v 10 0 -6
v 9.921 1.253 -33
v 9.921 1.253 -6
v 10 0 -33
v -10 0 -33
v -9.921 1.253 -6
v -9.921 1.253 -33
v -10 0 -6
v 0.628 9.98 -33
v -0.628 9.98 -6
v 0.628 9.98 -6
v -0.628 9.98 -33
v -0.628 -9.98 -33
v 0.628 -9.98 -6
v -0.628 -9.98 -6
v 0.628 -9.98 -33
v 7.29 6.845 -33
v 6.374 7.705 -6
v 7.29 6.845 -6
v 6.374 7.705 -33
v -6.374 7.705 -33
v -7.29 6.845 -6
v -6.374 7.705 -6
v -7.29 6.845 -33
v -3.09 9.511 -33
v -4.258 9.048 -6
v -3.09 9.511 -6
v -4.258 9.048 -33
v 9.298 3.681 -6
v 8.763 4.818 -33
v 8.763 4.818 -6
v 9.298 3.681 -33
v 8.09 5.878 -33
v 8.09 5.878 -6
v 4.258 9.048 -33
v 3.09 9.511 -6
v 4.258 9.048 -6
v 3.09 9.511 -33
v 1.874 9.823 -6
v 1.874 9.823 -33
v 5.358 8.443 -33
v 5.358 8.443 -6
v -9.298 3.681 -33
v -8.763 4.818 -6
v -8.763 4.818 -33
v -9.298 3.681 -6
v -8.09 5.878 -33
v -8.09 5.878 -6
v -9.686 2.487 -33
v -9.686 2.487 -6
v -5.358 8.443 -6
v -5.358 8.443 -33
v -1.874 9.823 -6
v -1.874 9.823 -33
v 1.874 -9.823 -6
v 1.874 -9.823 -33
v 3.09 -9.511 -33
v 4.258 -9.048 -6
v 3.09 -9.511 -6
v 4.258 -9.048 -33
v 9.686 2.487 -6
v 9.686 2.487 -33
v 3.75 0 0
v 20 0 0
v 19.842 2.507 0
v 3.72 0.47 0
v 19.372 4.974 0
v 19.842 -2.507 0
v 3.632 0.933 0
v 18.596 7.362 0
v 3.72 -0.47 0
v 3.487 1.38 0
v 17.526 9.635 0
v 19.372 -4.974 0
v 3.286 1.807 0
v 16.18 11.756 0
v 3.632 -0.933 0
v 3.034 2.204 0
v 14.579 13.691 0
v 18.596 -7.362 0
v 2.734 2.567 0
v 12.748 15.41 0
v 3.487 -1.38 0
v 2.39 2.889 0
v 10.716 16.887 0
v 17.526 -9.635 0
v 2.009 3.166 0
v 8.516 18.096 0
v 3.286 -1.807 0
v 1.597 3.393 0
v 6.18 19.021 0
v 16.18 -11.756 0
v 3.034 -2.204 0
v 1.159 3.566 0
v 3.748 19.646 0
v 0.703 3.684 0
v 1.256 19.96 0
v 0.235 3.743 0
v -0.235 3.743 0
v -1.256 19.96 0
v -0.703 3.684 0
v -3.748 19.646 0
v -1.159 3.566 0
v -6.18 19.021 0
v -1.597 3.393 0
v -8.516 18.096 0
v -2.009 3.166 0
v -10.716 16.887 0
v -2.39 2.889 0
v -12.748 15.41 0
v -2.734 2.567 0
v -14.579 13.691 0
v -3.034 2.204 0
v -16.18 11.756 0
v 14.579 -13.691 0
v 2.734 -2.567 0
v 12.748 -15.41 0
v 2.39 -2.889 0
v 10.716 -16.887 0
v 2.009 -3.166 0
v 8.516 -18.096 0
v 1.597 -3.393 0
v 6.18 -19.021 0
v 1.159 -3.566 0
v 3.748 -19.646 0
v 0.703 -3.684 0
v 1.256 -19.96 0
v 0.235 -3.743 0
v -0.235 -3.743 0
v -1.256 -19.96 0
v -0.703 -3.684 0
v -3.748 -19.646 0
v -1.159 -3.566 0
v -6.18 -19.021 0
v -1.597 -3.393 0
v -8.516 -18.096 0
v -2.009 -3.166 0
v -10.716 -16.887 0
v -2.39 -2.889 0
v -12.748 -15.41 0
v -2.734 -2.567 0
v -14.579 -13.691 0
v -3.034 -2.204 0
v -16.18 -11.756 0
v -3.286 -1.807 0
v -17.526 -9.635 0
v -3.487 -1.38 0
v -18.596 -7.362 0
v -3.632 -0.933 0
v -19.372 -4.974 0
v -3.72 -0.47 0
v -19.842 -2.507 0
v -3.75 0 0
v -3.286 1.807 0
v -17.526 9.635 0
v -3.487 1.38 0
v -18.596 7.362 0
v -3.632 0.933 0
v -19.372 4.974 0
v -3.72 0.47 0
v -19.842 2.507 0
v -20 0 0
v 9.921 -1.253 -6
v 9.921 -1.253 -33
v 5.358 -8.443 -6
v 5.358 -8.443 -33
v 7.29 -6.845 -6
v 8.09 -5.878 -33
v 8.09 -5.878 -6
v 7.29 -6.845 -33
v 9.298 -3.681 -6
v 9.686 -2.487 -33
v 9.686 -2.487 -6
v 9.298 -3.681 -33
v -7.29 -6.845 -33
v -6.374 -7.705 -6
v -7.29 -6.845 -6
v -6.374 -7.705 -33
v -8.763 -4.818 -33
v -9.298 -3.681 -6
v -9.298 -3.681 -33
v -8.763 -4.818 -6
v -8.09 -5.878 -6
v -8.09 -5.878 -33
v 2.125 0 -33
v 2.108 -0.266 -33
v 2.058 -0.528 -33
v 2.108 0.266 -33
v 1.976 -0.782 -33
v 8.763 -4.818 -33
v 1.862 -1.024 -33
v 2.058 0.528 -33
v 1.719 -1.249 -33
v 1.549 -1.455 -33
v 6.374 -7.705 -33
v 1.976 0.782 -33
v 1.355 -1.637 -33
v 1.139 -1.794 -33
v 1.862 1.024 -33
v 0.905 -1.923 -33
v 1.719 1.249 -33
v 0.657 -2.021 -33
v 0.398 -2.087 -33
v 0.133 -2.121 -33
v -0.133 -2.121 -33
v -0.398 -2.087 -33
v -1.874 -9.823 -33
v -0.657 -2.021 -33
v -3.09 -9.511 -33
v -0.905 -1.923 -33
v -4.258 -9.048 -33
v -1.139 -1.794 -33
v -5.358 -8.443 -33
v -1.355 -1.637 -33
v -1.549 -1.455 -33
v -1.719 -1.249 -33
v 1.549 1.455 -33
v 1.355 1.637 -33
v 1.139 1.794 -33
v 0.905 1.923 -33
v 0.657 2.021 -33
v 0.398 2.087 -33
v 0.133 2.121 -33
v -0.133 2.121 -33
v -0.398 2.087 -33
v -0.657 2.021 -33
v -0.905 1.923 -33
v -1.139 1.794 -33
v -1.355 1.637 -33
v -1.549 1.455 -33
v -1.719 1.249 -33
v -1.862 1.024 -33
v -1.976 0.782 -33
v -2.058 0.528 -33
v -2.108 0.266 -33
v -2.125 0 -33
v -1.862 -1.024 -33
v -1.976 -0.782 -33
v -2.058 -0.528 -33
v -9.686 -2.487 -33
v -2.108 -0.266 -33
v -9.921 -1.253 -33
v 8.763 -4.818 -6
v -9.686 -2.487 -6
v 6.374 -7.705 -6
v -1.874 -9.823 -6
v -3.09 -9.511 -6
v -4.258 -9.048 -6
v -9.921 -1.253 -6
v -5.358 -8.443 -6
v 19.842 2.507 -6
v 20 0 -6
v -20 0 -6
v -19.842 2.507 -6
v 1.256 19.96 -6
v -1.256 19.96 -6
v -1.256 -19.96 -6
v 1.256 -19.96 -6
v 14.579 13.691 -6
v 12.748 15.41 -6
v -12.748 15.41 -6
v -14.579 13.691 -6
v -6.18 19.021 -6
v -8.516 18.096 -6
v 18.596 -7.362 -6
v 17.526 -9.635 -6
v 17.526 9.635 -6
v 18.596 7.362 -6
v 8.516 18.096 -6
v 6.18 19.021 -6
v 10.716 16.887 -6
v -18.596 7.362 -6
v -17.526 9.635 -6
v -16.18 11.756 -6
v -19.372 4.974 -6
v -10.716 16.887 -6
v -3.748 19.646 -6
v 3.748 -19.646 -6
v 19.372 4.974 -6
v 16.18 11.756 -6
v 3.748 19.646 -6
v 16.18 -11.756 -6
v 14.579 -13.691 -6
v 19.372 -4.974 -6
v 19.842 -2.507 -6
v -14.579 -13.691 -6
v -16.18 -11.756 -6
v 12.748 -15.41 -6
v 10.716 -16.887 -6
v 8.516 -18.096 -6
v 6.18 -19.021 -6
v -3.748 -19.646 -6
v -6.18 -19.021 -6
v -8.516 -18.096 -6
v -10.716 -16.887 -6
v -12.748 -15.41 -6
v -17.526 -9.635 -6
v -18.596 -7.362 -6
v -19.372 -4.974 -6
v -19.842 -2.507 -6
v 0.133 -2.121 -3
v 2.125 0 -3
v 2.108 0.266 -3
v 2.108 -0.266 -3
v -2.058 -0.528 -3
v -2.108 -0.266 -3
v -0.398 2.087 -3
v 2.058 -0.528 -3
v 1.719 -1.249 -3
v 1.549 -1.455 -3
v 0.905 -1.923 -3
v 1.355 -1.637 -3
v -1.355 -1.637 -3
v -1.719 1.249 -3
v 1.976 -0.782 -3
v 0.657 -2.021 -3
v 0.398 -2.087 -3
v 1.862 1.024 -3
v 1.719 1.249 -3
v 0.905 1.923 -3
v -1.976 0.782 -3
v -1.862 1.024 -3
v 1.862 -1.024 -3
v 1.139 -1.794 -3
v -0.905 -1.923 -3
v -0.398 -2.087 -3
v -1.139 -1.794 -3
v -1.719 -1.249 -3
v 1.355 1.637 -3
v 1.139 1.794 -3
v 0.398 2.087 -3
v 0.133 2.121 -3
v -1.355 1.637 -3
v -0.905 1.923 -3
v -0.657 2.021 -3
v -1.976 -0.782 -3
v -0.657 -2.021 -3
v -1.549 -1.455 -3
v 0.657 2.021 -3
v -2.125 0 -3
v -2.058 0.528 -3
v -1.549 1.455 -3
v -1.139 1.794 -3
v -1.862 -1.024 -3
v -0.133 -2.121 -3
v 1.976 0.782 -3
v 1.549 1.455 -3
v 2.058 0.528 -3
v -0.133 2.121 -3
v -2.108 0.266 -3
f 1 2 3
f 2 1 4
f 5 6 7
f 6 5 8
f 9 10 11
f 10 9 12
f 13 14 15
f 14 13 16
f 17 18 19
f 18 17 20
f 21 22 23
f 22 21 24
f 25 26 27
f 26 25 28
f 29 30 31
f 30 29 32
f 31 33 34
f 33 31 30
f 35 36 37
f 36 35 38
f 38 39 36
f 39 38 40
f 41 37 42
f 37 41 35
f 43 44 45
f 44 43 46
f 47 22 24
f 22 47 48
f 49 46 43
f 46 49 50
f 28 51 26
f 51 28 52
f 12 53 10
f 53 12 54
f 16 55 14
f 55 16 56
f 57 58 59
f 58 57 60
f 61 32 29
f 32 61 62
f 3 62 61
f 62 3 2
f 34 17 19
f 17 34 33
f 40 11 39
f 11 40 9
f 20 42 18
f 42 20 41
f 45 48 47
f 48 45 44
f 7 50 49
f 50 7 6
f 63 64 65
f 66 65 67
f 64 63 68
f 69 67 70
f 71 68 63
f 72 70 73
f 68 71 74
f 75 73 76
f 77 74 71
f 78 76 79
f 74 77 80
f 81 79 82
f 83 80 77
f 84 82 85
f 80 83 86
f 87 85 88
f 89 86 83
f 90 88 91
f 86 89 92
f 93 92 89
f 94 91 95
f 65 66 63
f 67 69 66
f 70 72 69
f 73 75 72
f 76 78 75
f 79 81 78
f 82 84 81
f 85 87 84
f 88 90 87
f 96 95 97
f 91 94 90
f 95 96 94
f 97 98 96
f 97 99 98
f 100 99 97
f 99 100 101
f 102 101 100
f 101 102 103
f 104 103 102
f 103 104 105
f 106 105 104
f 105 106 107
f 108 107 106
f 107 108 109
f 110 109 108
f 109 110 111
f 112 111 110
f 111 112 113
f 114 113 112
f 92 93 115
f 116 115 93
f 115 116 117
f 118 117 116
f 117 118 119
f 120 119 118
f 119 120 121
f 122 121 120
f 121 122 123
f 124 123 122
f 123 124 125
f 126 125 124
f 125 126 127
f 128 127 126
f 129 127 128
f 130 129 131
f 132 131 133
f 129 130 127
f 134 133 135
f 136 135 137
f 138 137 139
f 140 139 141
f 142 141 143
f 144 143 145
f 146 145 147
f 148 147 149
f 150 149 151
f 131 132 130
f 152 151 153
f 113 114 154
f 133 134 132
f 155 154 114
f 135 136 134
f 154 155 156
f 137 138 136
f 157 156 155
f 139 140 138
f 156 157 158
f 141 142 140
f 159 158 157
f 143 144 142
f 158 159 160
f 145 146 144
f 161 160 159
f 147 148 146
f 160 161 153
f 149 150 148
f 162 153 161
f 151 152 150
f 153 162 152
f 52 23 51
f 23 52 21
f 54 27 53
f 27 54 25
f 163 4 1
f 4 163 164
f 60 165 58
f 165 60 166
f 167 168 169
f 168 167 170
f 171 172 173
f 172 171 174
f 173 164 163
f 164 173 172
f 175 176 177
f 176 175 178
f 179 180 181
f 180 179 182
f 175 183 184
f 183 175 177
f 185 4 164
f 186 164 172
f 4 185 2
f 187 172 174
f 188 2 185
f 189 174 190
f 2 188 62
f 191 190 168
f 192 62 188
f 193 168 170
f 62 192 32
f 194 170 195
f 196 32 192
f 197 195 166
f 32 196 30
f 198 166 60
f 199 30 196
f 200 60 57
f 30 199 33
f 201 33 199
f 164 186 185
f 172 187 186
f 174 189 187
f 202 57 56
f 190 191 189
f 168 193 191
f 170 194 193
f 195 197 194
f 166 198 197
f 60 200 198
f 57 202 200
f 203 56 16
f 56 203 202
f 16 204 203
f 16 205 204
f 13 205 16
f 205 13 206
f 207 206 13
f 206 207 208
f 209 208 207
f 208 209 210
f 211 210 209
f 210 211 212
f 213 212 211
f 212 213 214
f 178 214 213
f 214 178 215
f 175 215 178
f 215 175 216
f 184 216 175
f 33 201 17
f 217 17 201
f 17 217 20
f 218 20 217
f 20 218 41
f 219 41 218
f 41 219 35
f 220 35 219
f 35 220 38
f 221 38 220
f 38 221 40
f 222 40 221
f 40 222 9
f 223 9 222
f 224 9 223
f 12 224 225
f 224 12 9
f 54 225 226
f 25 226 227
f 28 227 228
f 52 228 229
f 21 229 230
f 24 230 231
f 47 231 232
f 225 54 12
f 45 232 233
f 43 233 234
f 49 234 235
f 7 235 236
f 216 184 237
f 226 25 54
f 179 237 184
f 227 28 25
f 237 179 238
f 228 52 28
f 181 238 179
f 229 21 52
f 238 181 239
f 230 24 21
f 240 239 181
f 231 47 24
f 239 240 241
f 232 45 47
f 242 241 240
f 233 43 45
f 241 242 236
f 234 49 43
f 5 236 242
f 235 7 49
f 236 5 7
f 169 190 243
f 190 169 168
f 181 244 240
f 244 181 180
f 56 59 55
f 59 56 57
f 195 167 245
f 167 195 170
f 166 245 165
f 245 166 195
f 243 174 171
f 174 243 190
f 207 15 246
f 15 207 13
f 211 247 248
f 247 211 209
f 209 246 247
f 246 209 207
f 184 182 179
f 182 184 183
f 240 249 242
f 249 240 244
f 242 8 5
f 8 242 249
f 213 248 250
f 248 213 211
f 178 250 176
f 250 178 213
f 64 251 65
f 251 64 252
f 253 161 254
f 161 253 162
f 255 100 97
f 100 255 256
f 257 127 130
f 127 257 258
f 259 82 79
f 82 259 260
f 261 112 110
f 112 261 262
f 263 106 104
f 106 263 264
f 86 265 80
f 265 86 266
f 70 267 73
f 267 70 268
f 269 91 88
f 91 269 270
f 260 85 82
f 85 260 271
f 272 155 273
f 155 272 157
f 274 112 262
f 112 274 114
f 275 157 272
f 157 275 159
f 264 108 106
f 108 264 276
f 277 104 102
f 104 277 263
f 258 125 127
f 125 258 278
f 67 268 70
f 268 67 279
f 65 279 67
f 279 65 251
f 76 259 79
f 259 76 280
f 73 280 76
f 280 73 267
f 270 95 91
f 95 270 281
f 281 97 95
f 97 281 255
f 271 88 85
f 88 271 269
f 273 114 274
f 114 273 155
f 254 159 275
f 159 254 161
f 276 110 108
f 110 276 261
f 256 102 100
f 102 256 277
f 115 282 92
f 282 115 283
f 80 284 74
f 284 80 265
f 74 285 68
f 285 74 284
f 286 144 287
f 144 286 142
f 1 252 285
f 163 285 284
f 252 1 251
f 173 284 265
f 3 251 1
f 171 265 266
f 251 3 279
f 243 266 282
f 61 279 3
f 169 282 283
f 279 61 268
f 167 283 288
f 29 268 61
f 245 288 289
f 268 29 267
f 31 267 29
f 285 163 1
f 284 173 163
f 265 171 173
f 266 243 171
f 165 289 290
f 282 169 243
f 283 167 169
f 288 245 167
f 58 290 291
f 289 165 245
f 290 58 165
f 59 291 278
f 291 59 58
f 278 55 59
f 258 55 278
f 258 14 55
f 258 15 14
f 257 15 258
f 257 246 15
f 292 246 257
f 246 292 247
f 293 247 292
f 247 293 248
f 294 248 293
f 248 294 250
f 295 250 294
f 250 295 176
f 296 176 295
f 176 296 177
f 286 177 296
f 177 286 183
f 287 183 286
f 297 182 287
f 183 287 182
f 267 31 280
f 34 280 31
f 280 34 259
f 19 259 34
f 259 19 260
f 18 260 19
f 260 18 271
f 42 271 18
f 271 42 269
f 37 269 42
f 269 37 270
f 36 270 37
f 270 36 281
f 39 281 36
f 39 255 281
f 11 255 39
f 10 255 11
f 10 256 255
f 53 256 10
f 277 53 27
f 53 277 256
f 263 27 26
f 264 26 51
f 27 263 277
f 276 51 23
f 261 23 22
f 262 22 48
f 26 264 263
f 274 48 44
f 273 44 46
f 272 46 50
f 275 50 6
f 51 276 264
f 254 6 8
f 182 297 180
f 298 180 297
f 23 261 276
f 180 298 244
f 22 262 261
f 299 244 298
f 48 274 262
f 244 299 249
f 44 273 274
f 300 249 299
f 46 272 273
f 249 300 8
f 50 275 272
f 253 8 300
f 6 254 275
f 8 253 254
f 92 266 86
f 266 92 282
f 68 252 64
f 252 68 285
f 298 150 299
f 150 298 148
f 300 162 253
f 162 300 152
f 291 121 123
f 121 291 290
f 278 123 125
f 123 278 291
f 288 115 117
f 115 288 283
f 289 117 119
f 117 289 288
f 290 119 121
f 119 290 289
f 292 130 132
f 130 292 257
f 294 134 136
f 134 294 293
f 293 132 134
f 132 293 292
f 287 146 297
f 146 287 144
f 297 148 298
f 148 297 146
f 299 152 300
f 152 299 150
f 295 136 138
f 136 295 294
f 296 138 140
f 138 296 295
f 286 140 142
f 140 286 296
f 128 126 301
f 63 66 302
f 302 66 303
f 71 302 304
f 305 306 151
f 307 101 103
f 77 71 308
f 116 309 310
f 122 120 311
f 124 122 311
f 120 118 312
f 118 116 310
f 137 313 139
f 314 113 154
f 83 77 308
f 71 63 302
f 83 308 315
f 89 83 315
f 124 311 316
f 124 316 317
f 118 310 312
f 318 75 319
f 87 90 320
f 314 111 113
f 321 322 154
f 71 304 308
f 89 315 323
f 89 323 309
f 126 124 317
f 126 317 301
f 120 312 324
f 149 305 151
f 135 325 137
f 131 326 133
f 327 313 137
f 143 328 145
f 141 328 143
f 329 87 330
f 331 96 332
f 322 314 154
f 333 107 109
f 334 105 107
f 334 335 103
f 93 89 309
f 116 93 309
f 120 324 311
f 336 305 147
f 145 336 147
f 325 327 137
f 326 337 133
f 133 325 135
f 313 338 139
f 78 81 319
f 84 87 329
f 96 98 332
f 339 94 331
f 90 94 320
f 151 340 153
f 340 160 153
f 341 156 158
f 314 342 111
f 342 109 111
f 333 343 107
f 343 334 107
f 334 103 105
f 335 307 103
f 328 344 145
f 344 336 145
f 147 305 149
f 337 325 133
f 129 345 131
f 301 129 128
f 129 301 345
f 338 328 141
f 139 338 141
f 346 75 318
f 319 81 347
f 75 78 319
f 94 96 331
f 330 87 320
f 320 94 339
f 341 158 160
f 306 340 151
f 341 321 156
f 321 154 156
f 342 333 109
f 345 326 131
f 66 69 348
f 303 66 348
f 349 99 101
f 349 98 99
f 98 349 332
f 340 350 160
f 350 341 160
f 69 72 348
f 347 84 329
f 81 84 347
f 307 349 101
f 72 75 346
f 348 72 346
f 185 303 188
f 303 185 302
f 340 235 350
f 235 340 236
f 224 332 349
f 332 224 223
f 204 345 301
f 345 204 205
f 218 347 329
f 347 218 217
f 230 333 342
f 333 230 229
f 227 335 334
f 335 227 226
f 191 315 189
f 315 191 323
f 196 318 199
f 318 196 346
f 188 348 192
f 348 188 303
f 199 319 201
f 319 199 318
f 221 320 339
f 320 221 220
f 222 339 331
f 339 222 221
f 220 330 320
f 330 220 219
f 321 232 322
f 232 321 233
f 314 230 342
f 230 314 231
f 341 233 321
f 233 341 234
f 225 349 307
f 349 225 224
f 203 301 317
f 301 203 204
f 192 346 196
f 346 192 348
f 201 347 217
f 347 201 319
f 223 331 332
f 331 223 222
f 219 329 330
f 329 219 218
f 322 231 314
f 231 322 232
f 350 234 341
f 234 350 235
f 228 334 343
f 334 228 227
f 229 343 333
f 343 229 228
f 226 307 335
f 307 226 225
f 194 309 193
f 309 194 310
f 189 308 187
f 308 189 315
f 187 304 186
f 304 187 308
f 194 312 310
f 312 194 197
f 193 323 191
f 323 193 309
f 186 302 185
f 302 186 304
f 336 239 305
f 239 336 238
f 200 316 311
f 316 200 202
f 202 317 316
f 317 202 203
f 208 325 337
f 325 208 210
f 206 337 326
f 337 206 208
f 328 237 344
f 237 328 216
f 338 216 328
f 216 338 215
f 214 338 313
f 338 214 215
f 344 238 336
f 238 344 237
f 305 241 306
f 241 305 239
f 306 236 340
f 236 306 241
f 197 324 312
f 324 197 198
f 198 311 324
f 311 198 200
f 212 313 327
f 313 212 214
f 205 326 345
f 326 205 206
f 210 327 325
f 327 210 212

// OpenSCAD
$fn = 50;


difference() {
	union() {
		translate(v = [0, 0, -33.0000000000]) {
			cylinder(h = 33, r = 10.0000000000);
		}
		translate(v = [0, 0, -6.0000000000]) {
			cylinder(h = 6, r = 20.0000000000);
		}
	}
	union() {
		translate(v = [0, 0, 0]) {
			rotate(a = [0, 0, 0]) {
				difference() {
					union() {
						#translate(v = [0, 0, -33.0000000000]) {
							cylinder(h = 33, r = 2.0000000000);
						}
						#translate(v = [0, 0, -3]) {
							cylinder(h = 3, r1 = 2.1250000000, r2 = 3.7500000000);
						}
						#translate(v = [0, 0, -33.0000000000]) {
							cylinder(h = 33, r = 2.1250000000);
						}
						#translate(v = [0, 0, -33.0000000000]) {
							cylinder(h = 33, r = 2.0000000000);
						}
					}
					union();
				}
			}
		}
	}
}
